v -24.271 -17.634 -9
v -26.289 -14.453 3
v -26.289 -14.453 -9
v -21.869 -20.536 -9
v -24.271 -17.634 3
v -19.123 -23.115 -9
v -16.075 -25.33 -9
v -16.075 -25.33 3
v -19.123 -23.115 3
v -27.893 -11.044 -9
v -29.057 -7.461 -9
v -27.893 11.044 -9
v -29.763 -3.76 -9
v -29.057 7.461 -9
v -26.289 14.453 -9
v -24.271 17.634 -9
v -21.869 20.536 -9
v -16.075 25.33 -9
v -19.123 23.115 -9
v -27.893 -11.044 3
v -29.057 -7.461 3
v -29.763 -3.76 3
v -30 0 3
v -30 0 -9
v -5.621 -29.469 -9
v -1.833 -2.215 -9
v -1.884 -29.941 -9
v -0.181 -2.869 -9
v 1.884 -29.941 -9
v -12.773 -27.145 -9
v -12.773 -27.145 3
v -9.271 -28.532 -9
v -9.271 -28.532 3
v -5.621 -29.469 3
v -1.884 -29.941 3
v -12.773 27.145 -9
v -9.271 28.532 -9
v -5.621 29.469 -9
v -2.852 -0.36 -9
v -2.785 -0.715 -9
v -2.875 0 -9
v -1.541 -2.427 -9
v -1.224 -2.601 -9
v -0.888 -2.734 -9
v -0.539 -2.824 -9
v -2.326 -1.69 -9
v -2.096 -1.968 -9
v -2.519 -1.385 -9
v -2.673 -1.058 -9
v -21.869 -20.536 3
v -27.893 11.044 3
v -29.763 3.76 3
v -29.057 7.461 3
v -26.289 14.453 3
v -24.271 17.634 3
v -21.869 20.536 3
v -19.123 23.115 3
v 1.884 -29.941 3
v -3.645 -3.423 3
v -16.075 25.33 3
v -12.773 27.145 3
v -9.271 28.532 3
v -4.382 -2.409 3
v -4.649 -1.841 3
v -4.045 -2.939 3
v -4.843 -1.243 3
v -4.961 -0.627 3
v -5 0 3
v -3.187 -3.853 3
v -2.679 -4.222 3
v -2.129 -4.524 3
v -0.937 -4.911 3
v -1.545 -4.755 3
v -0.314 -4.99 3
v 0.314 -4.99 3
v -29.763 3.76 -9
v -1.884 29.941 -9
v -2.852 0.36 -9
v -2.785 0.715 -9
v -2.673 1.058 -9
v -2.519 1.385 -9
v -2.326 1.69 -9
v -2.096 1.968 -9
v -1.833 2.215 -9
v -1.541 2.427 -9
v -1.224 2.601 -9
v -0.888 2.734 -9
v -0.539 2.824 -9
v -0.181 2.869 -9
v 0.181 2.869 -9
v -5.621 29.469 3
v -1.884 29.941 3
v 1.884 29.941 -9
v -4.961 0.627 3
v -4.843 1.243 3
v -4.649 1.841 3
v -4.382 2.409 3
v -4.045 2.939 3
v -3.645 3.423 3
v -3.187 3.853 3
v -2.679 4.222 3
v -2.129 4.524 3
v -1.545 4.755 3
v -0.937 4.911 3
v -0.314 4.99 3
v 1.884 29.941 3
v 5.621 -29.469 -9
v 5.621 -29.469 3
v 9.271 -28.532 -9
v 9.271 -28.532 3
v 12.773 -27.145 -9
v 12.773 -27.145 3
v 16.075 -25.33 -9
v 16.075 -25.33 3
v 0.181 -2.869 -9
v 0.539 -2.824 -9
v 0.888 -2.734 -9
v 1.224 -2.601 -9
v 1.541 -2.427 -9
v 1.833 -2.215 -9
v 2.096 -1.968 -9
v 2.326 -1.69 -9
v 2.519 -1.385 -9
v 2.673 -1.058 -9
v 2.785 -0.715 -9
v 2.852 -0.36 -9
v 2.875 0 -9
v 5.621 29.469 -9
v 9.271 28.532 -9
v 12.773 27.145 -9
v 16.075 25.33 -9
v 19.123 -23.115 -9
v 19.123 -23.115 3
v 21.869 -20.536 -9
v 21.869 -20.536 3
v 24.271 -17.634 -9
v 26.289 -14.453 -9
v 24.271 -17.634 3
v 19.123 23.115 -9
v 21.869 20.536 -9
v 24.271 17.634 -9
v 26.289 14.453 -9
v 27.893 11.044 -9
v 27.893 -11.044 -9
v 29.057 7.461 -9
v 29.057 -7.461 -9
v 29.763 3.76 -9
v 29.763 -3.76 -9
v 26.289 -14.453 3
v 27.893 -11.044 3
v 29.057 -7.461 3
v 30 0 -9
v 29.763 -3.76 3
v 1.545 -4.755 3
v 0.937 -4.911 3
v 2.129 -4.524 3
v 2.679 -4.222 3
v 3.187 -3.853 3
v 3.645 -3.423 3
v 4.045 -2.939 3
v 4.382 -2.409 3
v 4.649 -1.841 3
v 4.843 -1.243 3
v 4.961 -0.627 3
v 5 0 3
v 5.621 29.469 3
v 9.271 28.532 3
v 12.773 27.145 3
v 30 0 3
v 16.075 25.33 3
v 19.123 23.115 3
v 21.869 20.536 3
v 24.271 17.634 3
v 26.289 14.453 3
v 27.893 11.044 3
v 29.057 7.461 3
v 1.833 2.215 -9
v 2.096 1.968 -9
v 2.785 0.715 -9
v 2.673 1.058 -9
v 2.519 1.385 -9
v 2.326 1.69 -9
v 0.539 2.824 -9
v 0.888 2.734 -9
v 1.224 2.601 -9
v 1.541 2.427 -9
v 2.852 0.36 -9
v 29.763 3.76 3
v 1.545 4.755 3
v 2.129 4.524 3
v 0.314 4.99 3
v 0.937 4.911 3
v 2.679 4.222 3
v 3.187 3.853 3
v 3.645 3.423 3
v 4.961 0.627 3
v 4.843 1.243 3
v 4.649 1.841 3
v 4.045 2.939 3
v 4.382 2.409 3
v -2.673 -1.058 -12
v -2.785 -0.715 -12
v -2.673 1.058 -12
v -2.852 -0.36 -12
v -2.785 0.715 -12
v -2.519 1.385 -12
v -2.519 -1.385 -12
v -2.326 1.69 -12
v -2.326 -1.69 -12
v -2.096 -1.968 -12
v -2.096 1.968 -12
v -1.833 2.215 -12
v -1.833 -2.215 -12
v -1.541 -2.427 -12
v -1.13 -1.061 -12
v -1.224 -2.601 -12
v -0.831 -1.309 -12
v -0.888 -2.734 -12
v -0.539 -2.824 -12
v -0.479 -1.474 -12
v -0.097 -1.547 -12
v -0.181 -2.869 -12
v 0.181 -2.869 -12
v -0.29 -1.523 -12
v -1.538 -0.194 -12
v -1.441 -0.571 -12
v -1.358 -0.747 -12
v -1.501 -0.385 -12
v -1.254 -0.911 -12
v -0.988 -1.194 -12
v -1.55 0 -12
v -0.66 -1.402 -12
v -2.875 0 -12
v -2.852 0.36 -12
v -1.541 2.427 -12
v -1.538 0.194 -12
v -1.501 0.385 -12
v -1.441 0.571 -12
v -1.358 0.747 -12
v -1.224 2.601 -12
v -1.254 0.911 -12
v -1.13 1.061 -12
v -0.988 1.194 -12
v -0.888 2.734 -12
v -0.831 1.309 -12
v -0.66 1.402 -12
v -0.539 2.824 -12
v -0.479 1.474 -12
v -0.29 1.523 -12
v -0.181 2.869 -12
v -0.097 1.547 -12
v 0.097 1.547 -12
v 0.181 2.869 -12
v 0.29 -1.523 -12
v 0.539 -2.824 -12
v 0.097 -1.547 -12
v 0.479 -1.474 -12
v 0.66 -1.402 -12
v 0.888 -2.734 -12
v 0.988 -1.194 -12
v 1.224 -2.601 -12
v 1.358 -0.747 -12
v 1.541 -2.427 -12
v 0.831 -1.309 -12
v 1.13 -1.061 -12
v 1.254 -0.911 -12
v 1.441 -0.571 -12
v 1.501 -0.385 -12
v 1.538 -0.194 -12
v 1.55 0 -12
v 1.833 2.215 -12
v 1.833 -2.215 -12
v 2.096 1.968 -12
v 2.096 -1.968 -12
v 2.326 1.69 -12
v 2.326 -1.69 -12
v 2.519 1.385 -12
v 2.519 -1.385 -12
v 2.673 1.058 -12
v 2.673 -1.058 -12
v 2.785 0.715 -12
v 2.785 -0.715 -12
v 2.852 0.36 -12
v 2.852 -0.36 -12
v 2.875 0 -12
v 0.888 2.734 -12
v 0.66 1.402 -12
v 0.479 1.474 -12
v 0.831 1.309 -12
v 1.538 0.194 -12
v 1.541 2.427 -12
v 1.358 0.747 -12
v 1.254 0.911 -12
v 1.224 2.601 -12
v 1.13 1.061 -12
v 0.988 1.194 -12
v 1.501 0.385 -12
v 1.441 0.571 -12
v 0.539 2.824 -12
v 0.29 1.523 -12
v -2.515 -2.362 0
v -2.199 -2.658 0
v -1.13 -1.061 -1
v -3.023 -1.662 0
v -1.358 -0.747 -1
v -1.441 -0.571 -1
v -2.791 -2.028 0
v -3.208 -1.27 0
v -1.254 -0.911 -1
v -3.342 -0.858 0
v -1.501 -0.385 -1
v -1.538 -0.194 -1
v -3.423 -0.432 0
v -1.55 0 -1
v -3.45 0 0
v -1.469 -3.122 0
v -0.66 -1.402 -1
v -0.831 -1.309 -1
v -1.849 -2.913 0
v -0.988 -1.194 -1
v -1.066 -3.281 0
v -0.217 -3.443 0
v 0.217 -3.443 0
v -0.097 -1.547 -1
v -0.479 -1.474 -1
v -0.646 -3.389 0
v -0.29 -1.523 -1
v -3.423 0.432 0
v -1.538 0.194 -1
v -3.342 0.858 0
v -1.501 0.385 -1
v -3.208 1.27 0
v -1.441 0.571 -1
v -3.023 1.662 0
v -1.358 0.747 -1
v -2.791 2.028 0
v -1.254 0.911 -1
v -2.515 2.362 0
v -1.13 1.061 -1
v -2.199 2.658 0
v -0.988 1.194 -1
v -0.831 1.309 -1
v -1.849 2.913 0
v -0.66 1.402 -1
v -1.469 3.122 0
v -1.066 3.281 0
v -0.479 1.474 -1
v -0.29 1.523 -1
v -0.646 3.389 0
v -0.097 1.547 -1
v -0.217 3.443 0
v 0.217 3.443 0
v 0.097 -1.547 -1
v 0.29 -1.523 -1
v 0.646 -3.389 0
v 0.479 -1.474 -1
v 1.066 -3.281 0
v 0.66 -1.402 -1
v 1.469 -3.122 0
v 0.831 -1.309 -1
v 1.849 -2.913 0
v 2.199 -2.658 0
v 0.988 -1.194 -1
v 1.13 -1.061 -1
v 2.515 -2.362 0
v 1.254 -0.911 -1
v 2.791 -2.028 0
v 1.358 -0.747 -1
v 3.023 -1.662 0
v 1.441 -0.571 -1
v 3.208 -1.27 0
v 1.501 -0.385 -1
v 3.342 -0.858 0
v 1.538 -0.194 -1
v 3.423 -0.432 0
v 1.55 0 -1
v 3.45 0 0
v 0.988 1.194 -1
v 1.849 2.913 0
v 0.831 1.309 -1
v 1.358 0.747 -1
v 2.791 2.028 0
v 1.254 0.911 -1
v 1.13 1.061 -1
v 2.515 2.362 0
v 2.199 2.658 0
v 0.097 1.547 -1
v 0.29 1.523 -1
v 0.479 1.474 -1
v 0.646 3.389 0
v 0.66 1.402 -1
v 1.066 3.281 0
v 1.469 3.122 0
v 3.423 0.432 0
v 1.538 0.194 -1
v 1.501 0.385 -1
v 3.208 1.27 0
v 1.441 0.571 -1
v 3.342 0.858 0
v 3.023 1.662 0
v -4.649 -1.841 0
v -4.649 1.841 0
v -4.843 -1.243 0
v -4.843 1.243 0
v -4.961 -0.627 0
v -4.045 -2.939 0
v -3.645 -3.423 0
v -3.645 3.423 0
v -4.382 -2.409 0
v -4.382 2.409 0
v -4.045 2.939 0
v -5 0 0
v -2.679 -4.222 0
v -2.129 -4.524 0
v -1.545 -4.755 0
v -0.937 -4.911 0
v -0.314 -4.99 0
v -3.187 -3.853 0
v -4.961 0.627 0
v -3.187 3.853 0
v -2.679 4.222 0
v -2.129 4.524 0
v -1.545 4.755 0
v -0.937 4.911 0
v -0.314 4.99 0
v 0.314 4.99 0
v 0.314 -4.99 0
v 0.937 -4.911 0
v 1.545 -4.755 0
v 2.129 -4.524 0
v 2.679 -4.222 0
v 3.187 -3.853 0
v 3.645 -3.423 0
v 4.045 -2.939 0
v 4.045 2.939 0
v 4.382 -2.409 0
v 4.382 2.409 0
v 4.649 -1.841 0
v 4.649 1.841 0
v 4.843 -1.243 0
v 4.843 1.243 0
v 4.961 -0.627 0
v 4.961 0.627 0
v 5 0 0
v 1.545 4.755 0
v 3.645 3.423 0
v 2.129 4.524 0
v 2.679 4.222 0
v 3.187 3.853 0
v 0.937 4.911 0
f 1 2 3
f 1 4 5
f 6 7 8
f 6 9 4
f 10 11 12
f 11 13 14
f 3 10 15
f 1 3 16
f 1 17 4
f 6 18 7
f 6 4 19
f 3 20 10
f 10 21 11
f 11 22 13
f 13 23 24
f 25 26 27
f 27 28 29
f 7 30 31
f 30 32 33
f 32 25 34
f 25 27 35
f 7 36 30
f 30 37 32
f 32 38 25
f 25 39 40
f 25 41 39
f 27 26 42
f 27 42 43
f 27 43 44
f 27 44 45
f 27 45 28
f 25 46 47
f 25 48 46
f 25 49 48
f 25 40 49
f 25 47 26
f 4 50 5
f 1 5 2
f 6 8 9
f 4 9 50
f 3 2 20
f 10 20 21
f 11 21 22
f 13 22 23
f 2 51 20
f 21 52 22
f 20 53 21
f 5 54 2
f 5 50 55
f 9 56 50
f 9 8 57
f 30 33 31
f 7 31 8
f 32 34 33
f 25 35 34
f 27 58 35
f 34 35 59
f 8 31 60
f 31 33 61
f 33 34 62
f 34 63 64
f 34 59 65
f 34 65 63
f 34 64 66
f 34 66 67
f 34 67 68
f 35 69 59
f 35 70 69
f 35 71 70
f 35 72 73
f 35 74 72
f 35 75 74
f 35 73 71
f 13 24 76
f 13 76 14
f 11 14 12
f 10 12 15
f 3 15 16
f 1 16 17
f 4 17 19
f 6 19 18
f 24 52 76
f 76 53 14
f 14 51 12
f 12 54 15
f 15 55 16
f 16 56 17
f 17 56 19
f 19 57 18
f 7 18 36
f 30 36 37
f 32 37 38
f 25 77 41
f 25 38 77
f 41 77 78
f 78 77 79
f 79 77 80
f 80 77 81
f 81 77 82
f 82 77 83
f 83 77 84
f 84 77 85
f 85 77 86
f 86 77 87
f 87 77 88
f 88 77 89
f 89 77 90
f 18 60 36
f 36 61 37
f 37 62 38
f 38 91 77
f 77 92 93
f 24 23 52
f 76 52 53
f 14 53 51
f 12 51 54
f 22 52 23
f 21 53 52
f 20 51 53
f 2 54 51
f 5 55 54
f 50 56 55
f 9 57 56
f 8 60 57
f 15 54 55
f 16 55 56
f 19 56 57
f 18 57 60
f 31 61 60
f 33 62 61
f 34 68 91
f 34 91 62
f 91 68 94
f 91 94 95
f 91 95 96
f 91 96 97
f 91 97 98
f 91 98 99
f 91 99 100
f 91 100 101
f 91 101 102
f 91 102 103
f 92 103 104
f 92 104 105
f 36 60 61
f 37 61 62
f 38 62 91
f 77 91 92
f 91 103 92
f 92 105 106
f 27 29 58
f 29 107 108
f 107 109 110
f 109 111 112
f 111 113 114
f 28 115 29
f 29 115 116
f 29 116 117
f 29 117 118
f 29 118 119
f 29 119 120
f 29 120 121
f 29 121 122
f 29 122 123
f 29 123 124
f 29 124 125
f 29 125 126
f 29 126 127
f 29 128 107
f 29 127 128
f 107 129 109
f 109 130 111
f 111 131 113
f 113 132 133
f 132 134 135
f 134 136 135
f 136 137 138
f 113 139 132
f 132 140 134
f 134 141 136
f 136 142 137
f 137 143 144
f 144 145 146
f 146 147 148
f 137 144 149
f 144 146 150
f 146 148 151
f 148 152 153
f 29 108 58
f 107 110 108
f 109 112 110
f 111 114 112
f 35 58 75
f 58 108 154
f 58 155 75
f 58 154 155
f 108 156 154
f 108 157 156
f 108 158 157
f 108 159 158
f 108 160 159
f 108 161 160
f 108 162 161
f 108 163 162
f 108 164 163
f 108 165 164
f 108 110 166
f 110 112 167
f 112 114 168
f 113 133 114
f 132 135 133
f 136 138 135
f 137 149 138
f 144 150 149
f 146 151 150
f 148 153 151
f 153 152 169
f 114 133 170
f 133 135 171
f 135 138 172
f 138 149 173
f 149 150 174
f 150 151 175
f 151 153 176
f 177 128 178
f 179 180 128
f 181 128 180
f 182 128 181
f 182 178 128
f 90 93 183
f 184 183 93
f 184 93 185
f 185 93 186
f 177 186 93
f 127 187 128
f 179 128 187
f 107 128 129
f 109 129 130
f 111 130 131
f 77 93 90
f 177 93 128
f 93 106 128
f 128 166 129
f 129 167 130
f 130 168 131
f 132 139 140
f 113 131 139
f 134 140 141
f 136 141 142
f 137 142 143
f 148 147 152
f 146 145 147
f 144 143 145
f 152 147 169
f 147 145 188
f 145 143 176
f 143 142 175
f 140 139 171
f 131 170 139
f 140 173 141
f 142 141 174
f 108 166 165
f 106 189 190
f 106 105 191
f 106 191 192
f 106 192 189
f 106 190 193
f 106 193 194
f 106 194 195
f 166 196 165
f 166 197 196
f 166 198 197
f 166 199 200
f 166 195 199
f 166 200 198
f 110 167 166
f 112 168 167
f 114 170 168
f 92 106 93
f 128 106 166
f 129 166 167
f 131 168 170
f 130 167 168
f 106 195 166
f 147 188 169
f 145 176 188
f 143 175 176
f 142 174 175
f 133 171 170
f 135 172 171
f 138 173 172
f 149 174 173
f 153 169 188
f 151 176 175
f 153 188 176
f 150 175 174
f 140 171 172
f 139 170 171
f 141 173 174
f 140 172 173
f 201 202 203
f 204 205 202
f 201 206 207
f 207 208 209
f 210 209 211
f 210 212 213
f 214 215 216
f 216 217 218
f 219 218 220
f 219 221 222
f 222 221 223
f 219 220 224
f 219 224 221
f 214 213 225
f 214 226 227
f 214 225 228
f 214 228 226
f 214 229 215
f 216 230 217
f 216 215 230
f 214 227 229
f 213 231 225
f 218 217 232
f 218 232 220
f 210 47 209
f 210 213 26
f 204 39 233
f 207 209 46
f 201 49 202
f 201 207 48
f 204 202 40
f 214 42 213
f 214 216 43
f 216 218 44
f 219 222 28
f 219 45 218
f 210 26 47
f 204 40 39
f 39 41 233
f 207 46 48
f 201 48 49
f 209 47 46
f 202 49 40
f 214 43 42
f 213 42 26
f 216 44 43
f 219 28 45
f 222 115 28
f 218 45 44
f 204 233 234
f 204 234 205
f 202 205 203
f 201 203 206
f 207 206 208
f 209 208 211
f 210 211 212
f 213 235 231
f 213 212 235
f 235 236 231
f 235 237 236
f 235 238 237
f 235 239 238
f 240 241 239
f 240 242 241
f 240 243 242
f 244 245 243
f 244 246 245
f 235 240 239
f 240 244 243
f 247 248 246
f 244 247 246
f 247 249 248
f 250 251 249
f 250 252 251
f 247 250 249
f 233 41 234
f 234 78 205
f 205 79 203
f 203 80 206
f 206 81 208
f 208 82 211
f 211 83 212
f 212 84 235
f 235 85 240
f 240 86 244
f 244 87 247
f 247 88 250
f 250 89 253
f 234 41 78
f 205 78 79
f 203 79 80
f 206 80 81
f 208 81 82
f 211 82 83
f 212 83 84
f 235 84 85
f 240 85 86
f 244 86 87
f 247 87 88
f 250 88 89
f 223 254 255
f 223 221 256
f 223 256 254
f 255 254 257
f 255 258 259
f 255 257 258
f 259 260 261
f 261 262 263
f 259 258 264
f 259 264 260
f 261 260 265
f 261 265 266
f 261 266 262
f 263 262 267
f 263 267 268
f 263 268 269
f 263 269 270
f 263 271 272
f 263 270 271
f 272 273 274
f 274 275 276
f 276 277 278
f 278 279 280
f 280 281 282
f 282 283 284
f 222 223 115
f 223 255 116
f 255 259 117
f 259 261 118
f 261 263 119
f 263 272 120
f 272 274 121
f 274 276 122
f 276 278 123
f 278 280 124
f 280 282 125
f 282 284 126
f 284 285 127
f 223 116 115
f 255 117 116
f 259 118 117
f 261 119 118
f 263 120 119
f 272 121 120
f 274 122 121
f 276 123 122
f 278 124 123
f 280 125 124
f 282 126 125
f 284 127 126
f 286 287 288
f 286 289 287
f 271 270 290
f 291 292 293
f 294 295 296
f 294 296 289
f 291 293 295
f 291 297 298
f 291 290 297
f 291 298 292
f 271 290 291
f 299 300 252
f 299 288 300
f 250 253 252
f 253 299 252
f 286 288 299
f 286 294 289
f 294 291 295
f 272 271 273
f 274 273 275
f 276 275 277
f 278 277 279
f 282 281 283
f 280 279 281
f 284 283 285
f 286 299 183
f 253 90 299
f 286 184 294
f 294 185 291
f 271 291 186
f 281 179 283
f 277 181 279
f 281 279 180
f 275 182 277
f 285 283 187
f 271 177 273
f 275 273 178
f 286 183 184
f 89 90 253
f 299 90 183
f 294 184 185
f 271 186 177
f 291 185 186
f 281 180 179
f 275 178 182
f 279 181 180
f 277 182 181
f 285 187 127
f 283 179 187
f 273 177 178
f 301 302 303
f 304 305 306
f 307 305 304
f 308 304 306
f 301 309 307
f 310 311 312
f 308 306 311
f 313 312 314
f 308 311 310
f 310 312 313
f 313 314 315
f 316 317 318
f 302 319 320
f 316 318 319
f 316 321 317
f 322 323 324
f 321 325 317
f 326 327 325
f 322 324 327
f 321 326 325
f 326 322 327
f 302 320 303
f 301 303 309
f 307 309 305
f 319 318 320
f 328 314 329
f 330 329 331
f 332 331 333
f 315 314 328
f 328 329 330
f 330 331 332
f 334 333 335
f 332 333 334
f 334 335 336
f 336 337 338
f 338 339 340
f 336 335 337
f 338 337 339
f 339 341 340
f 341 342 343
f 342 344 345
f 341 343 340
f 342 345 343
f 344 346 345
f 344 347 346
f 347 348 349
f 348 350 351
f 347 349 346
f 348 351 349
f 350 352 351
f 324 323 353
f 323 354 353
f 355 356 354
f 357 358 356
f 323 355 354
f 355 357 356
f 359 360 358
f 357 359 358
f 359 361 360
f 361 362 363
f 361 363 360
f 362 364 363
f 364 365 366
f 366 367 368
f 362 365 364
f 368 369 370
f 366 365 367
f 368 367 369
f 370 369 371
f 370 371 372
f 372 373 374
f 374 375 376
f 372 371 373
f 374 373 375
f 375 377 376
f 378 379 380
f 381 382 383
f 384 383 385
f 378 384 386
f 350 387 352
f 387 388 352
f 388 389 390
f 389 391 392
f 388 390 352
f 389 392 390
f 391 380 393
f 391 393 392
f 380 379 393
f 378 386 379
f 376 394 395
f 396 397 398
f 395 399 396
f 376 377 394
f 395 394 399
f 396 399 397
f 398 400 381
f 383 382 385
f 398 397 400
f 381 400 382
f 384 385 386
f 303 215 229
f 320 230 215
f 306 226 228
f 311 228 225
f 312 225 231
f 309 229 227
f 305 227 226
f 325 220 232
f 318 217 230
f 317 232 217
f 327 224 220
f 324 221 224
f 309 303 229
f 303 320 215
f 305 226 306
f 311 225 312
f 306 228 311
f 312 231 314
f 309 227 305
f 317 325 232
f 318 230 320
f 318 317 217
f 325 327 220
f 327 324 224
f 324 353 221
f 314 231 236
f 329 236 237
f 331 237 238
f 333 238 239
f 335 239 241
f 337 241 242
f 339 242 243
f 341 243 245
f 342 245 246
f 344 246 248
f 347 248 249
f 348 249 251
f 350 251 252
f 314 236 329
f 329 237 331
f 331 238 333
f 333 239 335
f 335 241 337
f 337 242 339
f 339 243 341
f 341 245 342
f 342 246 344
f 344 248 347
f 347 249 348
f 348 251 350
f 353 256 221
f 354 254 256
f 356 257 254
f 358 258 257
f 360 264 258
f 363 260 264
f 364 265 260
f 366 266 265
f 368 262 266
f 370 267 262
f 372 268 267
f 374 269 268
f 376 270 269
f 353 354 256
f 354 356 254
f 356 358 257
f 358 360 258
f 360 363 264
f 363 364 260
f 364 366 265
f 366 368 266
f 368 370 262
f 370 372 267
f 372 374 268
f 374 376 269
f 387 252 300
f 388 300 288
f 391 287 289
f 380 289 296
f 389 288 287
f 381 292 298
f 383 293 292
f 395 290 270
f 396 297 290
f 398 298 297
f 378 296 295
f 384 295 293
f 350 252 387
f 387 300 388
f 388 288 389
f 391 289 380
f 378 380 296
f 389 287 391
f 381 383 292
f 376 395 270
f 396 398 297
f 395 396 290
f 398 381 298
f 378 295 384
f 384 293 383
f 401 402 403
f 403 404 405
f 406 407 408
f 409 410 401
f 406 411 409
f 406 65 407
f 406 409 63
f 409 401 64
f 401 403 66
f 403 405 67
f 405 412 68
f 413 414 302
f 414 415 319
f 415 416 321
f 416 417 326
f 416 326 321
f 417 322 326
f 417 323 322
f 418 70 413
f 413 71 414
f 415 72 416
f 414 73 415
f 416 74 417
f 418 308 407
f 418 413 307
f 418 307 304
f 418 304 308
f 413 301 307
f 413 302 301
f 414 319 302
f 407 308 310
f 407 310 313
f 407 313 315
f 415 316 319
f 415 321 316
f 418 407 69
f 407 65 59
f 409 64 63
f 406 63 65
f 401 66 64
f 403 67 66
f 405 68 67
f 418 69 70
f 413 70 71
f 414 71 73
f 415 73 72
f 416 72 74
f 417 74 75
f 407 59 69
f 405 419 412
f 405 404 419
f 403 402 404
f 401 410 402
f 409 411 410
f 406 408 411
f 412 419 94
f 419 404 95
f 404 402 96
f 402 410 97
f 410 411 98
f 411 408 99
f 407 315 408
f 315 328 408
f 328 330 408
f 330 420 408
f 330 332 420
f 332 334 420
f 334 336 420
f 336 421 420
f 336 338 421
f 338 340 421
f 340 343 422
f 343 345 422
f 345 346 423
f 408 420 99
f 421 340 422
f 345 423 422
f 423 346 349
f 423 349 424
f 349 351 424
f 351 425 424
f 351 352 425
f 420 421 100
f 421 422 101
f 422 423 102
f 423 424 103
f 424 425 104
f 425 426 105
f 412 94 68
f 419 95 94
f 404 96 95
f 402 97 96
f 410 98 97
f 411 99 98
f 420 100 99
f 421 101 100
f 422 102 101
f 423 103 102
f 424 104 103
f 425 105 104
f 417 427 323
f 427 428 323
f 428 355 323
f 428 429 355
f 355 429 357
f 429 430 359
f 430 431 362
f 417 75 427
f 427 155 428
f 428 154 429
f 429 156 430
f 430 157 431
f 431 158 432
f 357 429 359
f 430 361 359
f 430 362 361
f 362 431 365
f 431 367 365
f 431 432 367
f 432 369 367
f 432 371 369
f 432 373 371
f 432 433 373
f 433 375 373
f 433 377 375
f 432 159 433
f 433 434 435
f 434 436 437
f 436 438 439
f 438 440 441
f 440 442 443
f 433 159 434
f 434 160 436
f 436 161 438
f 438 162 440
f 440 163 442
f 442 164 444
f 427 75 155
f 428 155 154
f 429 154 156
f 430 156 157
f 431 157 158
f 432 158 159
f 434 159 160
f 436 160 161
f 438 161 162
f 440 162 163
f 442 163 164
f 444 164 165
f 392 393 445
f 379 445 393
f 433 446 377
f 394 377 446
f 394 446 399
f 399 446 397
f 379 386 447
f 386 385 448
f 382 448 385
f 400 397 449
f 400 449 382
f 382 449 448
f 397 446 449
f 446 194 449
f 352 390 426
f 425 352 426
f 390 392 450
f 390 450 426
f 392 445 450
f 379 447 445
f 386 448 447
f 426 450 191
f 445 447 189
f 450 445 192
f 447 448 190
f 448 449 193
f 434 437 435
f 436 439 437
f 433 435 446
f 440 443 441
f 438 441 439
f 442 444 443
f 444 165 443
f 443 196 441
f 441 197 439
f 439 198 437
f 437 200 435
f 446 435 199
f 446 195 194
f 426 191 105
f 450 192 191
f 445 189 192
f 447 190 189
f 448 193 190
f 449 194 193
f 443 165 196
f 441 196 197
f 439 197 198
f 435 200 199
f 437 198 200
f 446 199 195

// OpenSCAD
$fn = 50;


difference() {
	union() {
		translate(v = [0, 0, -9.0000000000]) {
			cylinder(h = 12, r = 30.0000000000);
		}
		#translate(v = [0, 0, -12.0000000000]) {
			cylinder(h = 12, r = 2.8750000000);
		}
	}
	union() {
		translate(v = [0, 0, 0]) {
			rotate(a = [0, 0, 0]) {
				difference() {
					union() {
						translate(v = [0, 0, -12.0000000000]) {
							cylinder(h = 12, r = 1.2500000000);
						}
						translate(v = [0, 0, -1.0000000000]) {
							cylinder(h = 1.0000000000, r1 = 1.5500000000, r2 = 3.4500000000);
						}
						translate(v = [0, 0, -12.0000000000]) {
							cylinder(h = 12, r = 1.5500000000);
						}
						translate(v = [0, 0, -12.0000000000]) {
							cylinder(h = 12, r = 1.2500000000);
						}
					}
					union();
				}
			}
		}
		#cylinder(h = 3, r = 5.0000000000);
	}
}
